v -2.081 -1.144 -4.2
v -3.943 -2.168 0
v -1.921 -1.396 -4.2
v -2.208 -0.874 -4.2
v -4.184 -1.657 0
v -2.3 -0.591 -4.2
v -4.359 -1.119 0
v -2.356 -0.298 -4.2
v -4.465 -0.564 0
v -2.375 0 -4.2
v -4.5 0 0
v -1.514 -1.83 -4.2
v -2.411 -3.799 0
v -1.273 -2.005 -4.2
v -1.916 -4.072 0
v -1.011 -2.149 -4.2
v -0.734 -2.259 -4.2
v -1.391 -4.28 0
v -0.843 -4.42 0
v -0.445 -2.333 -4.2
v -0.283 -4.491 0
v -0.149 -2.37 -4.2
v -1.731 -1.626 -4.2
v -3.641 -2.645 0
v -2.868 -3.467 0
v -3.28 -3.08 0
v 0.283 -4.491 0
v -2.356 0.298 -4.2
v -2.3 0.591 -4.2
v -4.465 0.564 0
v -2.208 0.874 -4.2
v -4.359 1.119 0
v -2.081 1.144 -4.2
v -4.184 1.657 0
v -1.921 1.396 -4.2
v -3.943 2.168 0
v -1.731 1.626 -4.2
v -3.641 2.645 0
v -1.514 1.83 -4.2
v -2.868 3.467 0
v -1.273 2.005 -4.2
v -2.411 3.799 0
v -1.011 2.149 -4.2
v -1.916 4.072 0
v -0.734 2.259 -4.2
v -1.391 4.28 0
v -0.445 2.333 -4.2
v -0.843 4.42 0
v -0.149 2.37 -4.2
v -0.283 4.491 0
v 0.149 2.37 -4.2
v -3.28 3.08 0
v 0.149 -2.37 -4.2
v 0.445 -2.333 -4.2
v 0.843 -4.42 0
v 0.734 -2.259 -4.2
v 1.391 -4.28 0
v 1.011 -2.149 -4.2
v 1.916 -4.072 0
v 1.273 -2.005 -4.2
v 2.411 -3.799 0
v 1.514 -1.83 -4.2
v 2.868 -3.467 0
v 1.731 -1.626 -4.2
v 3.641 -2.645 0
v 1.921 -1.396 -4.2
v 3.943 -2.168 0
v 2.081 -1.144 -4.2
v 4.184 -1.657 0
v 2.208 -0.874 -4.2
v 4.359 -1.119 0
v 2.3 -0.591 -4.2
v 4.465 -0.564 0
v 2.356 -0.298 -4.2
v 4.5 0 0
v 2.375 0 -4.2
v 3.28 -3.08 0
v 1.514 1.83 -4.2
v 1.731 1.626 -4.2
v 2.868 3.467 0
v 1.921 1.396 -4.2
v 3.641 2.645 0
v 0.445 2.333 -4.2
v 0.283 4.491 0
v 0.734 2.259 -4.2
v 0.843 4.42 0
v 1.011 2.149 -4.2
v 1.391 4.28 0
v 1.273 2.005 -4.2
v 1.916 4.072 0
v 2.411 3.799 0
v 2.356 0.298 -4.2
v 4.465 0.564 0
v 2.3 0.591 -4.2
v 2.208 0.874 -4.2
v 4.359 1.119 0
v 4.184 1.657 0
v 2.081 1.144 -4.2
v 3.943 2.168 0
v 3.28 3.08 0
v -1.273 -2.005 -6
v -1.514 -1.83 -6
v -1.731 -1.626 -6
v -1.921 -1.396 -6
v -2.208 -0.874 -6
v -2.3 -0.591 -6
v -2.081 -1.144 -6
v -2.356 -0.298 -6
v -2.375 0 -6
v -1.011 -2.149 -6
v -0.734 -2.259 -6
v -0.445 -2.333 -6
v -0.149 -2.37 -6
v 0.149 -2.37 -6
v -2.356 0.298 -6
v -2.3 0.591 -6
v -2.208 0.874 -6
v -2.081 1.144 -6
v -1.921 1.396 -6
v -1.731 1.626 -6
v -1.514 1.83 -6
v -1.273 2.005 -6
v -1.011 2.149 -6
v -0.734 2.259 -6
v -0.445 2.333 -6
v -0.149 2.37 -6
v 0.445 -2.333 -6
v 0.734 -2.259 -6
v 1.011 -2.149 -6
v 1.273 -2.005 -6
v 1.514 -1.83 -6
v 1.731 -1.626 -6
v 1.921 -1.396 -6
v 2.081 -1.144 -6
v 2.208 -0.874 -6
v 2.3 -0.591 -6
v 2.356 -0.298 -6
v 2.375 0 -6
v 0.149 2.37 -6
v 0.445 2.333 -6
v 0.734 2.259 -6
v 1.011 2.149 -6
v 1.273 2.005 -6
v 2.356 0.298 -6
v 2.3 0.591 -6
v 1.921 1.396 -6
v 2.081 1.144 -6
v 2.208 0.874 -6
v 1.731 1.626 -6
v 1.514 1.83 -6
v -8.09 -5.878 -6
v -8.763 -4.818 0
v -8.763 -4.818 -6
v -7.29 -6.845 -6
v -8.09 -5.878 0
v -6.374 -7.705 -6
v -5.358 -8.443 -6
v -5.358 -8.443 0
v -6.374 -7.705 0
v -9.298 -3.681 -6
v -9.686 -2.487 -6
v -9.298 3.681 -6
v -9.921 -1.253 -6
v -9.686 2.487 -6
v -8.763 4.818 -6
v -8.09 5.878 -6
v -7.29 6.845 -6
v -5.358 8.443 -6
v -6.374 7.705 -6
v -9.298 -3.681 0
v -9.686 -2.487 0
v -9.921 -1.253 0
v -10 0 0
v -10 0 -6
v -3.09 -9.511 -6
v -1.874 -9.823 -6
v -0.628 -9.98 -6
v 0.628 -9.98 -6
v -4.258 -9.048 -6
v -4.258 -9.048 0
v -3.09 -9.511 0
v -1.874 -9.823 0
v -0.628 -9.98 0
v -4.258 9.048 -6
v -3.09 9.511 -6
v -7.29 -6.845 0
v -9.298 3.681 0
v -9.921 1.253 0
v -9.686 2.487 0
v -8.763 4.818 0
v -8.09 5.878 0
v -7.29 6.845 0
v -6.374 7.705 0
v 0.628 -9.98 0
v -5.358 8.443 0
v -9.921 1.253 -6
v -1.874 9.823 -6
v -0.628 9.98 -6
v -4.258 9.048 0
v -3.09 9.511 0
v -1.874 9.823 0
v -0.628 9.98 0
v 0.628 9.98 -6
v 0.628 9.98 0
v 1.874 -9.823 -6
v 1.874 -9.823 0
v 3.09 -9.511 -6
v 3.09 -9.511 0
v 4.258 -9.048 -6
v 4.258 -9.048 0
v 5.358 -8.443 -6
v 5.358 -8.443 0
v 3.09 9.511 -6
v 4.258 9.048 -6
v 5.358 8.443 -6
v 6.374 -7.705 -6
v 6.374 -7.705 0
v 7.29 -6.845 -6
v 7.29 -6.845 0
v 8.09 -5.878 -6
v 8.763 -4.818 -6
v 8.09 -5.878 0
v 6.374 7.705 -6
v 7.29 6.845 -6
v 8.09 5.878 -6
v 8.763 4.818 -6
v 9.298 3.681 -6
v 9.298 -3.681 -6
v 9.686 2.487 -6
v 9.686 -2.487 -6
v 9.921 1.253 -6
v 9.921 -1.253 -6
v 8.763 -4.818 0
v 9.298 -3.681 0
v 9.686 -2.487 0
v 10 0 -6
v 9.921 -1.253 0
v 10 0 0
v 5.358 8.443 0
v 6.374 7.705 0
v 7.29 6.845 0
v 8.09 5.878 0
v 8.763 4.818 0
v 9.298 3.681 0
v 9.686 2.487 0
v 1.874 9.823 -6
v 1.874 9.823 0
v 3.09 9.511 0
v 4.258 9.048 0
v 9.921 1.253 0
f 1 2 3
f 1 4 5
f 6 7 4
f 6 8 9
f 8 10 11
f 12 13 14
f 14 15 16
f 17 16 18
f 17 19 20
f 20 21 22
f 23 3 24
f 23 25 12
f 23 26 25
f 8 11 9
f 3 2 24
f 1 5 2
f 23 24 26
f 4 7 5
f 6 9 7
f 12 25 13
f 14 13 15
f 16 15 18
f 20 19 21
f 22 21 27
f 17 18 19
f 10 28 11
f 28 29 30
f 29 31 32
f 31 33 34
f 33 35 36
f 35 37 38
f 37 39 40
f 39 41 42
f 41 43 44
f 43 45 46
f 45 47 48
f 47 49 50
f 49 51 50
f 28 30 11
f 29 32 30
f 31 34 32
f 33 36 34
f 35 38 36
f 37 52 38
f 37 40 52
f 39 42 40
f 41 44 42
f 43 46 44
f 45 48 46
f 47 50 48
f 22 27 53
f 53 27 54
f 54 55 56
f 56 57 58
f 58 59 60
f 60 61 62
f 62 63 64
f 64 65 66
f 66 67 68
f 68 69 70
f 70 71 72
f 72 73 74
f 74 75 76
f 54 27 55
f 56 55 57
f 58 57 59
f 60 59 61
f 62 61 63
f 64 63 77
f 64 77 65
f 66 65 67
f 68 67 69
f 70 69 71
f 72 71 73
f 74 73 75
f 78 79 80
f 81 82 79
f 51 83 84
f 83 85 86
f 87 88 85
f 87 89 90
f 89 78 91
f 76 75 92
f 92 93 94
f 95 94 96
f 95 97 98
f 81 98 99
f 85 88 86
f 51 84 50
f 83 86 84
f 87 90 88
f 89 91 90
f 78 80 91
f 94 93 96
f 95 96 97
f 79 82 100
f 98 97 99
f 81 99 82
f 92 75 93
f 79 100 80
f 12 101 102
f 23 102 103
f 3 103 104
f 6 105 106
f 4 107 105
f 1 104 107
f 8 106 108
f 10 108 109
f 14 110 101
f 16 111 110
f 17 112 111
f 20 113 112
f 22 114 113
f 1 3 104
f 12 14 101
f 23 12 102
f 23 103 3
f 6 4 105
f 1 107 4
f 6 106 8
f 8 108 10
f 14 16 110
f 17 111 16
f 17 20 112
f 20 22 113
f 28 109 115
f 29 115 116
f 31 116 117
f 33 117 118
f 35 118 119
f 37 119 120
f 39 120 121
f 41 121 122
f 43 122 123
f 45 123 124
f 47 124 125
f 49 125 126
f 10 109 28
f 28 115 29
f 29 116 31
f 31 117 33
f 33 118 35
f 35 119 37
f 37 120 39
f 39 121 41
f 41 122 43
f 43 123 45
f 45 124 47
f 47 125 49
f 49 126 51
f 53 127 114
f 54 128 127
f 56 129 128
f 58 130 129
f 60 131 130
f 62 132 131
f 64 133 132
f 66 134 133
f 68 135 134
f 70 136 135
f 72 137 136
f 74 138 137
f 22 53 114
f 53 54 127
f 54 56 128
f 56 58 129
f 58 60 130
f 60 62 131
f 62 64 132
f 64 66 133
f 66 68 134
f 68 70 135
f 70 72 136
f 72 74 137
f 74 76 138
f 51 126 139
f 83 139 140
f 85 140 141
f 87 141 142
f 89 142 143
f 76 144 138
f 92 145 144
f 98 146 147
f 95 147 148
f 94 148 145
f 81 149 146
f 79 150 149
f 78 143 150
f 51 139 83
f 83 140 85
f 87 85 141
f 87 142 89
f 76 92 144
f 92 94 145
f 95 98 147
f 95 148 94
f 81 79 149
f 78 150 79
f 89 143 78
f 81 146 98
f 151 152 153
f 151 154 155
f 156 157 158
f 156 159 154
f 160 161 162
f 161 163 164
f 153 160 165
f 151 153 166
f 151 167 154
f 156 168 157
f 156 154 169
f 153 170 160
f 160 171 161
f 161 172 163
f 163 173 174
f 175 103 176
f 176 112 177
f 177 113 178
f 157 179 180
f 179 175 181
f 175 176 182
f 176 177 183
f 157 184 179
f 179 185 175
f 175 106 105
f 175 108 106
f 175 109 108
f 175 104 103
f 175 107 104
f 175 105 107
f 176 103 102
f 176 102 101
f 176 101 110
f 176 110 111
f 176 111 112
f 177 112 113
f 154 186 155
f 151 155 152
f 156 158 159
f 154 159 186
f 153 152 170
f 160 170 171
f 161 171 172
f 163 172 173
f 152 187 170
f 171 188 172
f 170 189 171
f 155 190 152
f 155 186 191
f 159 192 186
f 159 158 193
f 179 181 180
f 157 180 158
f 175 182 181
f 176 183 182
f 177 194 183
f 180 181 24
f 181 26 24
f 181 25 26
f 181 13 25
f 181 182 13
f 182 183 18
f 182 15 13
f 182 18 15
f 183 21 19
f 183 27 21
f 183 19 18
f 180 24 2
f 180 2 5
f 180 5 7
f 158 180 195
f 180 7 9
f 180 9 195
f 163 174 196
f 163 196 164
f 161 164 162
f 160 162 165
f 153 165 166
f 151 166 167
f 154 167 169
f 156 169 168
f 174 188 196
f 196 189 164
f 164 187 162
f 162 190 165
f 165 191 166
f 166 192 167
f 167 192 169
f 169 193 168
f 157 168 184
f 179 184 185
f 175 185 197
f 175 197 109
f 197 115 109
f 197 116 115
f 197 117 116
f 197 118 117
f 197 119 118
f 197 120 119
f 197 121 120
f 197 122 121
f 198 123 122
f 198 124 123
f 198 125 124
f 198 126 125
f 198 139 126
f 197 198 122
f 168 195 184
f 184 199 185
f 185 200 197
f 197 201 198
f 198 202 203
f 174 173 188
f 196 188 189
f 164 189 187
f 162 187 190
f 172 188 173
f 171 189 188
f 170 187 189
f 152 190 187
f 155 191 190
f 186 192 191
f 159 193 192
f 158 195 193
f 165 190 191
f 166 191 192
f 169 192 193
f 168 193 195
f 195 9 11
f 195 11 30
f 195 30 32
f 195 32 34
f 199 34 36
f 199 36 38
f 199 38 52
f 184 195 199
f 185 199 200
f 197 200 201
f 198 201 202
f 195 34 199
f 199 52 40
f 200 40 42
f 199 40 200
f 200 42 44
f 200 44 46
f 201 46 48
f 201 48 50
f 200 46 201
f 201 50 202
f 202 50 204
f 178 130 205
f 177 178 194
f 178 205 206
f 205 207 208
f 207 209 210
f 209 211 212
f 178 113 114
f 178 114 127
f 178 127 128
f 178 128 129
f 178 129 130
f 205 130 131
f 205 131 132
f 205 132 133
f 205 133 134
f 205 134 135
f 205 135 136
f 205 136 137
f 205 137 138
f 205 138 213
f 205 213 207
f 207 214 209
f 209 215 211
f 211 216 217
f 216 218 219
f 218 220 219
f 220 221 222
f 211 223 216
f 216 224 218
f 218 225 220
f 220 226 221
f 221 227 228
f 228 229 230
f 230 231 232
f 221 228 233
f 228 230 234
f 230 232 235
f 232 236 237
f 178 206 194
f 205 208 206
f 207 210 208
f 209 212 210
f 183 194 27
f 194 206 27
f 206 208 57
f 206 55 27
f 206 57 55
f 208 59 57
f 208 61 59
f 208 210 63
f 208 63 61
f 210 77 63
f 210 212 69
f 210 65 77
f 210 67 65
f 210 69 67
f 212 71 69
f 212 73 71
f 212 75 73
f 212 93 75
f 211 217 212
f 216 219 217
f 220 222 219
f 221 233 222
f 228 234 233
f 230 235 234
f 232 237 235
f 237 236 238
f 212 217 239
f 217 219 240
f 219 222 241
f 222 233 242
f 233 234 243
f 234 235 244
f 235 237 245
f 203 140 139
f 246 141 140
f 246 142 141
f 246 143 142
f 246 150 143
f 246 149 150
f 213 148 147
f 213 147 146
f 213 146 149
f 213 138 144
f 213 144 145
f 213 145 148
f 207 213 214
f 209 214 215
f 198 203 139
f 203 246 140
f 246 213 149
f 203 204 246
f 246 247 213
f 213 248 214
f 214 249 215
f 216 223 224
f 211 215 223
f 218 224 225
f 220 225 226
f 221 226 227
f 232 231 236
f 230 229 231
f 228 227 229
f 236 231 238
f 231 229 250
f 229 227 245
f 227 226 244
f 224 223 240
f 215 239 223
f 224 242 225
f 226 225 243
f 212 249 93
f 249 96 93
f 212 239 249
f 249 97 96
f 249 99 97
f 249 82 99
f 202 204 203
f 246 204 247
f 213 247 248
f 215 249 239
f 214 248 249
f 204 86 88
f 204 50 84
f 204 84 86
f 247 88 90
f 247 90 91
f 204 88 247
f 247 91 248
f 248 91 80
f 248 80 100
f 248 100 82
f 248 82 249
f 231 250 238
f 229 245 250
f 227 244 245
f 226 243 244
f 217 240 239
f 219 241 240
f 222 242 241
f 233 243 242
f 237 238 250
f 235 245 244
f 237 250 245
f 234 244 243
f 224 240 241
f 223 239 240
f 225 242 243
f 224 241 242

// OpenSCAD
$fn = 50;

difference() {
	union() {
		translate(v = [0, 0, -6.0]) {
			cylinder(h = 6, r = 10.0);
		}
	}
	union() {
		translate(v = [0, 0, 0]) {
			rotate(a = [0, 0, 0]) {
				difference() {
					union() {
						translate(v = [0, 0, -9.0]) {
							cylinder(h = 9, r = 2.25);
						}
						translate(v = [0, 0, -4.2]) {
							cylinder(h = 4.2, r1 = 2.375, r2 = 4.5);
						}
						translate(v = [0, 0, -9.0]) {
							cylinder(h = 9, r = 2.375);
						}
						translate(v = [0, 0, -9.0]) {
							cylinder(h = 9, r = 2.25);
						}
					}
					union();
				}
			}
		}
	}
}
